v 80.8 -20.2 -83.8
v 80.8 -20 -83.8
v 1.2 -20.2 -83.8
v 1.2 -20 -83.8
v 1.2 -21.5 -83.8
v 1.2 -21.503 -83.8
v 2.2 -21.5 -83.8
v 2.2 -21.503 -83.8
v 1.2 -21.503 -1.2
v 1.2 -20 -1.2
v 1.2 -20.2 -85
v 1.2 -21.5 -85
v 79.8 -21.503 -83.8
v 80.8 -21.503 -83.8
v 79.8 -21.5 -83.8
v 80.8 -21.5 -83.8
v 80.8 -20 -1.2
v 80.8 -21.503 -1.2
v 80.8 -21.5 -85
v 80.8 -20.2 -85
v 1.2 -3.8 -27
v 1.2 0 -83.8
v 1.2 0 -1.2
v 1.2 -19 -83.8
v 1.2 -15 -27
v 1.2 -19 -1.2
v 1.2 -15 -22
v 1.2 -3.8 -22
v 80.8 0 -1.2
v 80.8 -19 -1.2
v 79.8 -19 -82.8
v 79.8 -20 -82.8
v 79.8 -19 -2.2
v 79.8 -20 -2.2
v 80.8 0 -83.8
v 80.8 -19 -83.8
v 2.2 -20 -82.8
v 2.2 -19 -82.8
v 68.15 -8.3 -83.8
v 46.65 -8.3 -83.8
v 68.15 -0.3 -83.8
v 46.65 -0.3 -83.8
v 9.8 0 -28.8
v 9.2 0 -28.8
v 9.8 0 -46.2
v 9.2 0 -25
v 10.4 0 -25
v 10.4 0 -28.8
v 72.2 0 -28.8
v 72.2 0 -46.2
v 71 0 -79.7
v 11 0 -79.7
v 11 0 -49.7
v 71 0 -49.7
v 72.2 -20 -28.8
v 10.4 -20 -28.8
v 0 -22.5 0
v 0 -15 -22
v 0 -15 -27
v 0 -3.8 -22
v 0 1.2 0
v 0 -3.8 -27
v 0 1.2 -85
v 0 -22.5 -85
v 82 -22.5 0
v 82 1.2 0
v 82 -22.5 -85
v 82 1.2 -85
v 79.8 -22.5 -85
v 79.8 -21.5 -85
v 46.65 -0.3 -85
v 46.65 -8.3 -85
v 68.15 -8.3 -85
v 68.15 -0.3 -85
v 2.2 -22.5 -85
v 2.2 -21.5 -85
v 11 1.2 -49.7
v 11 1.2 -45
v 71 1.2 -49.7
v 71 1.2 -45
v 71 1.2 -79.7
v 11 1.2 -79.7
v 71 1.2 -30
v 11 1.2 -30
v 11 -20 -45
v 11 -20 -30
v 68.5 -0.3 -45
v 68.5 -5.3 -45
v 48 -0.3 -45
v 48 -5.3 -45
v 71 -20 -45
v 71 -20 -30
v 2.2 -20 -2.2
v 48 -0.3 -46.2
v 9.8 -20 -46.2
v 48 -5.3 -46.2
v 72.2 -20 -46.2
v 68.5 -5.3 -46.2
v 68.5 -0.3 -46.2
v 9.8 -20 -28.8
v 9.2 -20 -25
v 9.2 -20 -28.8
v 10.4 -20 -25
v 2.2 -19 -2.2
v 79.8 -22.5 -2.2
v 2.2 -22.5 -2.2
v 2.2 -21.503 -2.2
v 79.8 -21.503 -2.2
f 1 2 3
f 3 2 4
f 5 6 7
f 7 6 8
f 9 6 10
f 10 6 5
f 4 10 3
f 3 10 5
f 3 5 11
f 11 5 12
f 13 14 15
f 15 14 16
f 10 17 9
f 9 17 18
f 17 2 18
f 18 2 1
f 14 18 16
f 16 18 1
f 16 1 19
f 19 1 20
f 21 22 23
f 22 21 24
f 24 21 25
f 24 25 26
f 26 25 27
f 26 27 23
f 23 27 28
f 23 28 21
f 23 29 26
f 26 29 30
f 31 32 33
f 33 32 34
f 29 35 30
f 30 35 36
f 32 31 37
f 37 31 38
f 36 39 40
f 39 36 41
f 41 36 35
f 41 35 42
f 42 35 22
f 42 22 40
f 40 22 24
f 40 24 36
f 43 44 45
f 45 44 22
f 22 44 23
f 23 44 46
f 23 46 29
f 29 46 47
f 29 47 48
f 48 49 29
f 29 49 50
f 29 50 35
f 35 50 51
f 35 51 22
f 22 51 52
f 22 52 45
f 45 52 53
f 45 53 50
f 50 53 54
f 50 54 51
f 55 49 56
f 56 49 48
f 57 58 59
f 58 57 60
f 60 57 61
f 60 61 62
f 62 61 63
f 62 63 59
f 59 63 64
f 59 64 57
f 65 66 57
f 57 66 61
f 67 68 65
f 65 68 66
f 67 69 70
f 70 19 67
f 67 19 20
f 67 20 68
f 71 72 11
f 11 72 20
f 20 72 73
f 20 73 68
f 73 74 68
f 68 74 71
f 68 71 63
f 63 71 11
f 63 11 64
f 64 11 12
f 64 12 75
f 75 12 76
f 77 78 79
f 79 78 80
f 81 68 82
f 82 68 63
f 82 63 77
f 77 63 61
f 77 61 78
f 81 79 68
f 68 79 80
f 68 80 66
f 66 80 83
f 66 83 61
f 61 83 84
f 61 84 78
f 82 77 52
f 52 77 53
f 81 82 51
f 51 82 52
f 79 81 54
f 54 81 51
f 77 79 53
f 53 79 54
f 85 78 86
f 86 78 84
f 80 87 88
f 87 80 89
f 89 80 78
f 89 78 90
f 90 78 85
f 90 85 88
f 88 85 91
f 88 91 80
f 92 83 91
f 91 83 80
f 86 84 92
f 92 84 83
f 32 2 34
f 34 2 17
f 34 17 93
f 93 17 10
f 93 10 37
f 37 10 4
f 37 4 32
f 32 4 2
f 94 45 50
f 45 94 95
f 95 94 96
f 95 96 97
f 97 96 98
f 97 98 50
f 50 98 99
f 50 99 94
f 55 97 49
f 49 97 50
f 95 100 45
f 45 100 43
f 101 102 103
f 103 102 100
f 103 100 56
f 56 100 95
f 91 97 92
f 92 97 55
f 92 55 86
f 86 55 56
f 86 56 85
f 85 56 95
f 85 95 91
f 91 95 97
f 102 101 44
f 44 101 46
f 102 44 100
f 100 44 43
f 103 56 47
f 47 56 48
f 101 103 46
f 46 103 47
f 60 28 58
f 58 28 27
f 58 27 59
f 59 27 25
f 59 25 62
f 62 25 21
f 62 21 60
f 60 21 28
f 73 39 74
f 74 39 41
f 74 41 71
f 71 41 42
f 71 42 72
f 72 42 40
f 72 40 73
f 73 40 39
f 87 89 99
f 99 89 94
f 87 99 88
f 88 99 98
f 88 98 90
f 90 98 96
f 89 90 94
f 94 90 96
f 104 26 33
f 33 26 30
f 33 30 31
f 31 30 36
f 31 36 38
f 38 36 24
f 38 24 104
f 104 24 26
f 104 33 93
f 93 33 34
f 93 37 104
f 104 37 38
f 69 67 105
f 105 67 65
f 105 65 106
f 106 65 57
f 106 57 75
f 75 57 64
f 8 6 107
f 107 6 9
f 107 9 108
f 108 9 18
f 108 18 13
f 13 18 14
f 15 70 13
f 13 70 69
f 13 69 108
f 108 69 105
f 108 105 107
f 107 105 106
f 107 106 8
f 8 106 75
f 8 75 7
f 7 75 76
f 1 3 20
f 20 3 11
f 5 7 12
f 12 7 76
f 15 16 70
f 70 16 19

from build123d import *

# Parameters (mm, degrees)
SKETCH1_W            = 82
SKETCH1_H            = 85
BOSS_EXTRUDE1_DEPTH  = 1.2
SKETCH2_W            = 60
SKETCH2_H            = 30
CUT_EXTRUDE1_DEPTH   = 2
SKETCH3_W            = 60
SKETCH3_H            = 15
CUT_EXTRUDE2_DEPTH   = 2
SKETCH4_W            = 82
SKETCH4_H            = 85
SKETCH4_W_2          = 79.6
SKETCH4_H_2          = 82.6
BOSS_EXTRUDE2_DEPTH  = 20
SKETCH5_W            = 62.4
SKETCH5_H            = 17.4
SKETCH5_W_2          = 60
SKETCH5_H_2          = 15
BOSS_EXTRUDE4_DEPTH  = 20
SKETCH10_W           = 1.2
SKETCH10_H           = 3.8
BOSS_EXTRUDE5_DEPTH  = 20
SKETCH11_W           = 5
SKETCH11_H           = 11.2
CUT_EXTRUDE3_DEPTH   = 1.5
SKETCH12_W           = 21.5
SKETCH12_H           = 8
CUT_EXTRUDE4_DEPTH   = 1.5
SKETCH15_W           = 20.5
SKETCH15_H           = 5
CUT_EXTRUDE5_DEPTH   = 1.5
SKETCH16_W           = 79.6
SKETCH16_H           = 1
BOSS_EXTRUDE6_DEPTH  = 1
SKETCH17_W           = 81.6
SKETCH17_H           = 1
BOSS_EXTRUDE7_DEPTH  = 1
SKETCH18_W           = 78.6
SKETCH18_H           = 1
BOSS_EXTRUDE8_DEPTH  = 1
SKETCH19_W           = 80.6
SKETCH19_H           = 1
BOSS_EXTRUDE9_DEPTH  = 1
SKETCH20_W           = 82
SKETCH20_H           = 85
SKETCH20_W_2         = 79.6
SKETCH20_H_2         = 82.6
BOSS_EXTRUDE10_DEPTH = 2.5
SKETCH23_W           = 82.6
SKETCH23_H           = 0.996744569
BOSS_EXTRUDE11_DEPTH = 1
SKETCH25_W           = 78.6
SKETCH25_H           = 0.996744569
BOSS_EXTRUDE13_DEPTH = 1
SKETCH27_W           = 81.6
SKETCH27_H           = 0.996744569
BOSS_EXTRUDE14_DEPTH = 1
CUT_EXTRUDE7_DEPTH   = 1.2


with BuildPart() as part:
    # Sketch1 → Boss-Extrude1 (new body)
    with BuildSketch(Plane(origin=(0, 0, 0), x_dir=(1, 0, 0), z_dir=(0, 1, 0))):
        with Locations((41, 42.5)):
            Rectangle(SKETCH1_W, SKETCH1_H)
    extrude(amount=BOSS_EXTRUDE1_DEPTH)

    # Sketch2 → Cut-Extrude1 (cut)
    with BuildSketch(Plane(origin=(0, 1.2, 0), x_dir=(1, 0, 0), z_dir=(0, 1, 0))):
        with Locations((41, 64.7)):
            Rectangle(SKETCH2_W, SKETCH2_H)
    extrude(amount=-CUT_EXTRUDE1_DEPTH, mode=Mode.SUBTRACT)

    # Sketch3 → Cut-Extrude2 (cut)
    with BuildSketch(Plane(origin=(0, 1.2, 0), x_dir=(1, 0, 0), z_dir=(0, 1, 0))):
        with Locations((41, 37.5)):
            Rectangle(SKETCH3_W, SKETCH3_H)
    extrude(amount=-CUT_EXTRUDE2_DEPTH, mode=Mode.SUBTRACT)

    # Sketch4 → Boss-Extrude2 (add)
    with BuildSketch(Plane.XZ):
        with Locations((41, -42.5)):
            Rectangle(SKETCH4_W, SKETCH4_H)
        with Locations((41, -42.5)):
            Rectangle(SKETCH4_W_2, SKETCH4_H_2, mode=Mode.SUBTRACT)
    extrude(amount=BOSS_EXTRUDE2_DEPTH)

    # Sketch5 → Boss-Extrude4 (add)
    with BuildSketch(Plane.XZ):
        with Locations((41, -37.5)):
            Rectangle(SKETCH5_W, SKETCH5_H)
        with Locations((41, -37.5)):
            Rectangle(SKETCH5_W_2, SKETCH5_H_2, mode=Mode.SUBTRACT)
    extrude(amount=BOSS_EXTRUDE4_DEPTH)

    # Sketch10 → Boss-Extrude5 (add)
    with BuildSketch(Plane.XZ):
        with Locations((9.8, -26.9)):
            Rectangle(SKETCH10_W, SKETCH10_H)
    extrude(amount=BOSS_EXTRUDE5_DEPTH)

    # Sketch11 → Cut-Extrude3 (cut)
    with BuildSketch(Plane.ZY):
        with Locations((-24.5, -9.4)):
            Rectangle(SKETCH11_W, SKETCH11_H)
    extrude(amount=-CUT_EXTRUDE3_DEPTH, mode=Mode.SUBTRACT)

    # Sketch12 → Cut-Extrude4 (cut)
    with BuildSketch(Plane(origin=(0, 0, -85), x_dir=(-1, 0, 0), z_dir=(0, 0, -1))):
        with Locations((-57.4, -4.3)):
            Rectangle(SKETCH12_W, SKETCH12_H)
    extrude(amount=-CUT_EXTRUDE4_DEPTH, mode=Mode.SUBTRACT)

    # Sketch15 → Cut-Extrude5 (cut)
    with BuildSketch(Plane.XY.offset(-45)):
        with Locations((58.25, -2.8)):
            Rectangle(SKETCH15_W, SKETCH15_H)
    extrude(amount=-CUT_EXTRUDE5_DEPTH, mode=Mode.SUBTRACT)

    # Sketch16 → Boss-Extrude6 (add)
    with BuildSketch(Plane.XY.offset(-83.8)):
        with Locations((41, -19.5)):
            Rectangle(SKETCH16_W, SKETCH16_H)
    extrude(amount=BOSS_EXTRUDE6_DEPTH)

    # Sketch17 → Boss-Extrude7 (add)
    with BuildSketch(Plane.ZY.offset(-80.8)):
        with Locations((-42, -19.5)):
            Rectangle(SKETCH17_W, SKETCH17_H)
    extrude(amount=BOSS_EXTRUDE7_DEPTH)

    # Sketch18 → Boss-Extrude8 (add)
    with BuildSketch(Plane(origin=(0, 0, -1.2), x_dir=(-1, 0, 0), z_dir=(0, 0, -1))):
        with Locations((-40.5, -19.5)):
            Rectangle(SKETCH18_W, SKETCH18_H)
    extrude(amount=BOSS_EXTRUDE8_DEPTH)

    # Sketch19 → Boss-Extrude9 (add)
    with BuildSketch(Plane(origin=(1.2, 0, 0), x_dir=(0, 0, -1), z_dir=(1, 0, 0))):
        with Locations((42.5, -19.5)):
            Rectangle(SKETCH19_W, SKETCH19_H)
    extrude(amount=BOSS_EXTRUDE9_DEPTH)

    # Sketch20 → Boss-Extrude10 (add)
    with BuildSketch(Plane.XZ.offset(20)):
        with Locations((41, -42.5)):
            Rectangle(SKETCH20_W, SKETCH20_H)
        with Locations((41, -42.5)):
            Rectangle(SKETCH20_W_2, SKETCH20_H_2, mode=Mode.SUBTRACT)
    extrude(amount=BOSS_EXTRUDE10_DEPTH)

    # Sketch23 → Boss-Extrude11 (add)
    with BuildSketch(Plane.ZY.offset(-80.8)):
        with Locations((-42.5, -22.001627715)):
            Rectangle(SKETCH23_W, SKETCH23_H)
    extrude(amount=BOSS_EXTRUDE11_DEPTH)

    # Sketch25 → Boss-Extrude13 (add)
    with BuildSketch(Plane(origin=(0, 0, -1.2), x_dir=(-1, 0, 0), z_dir=(0, 0, -1))):
        with Locations((-40.5, -22.001627715)):
            Rectangle(SKETCH25_W, SKETCH25_H)
    extrude(amount=BOSS_EXTRUDE13_DEPTH)

    # Sketch27 → Boss-Extrude14 (add)
    with BuildSketch(Plane(origin=(1.2, 0, 0), x_dir=(0, 0, -1), z_dir=(1, 0, 0))):
        with Locations((43, -22.001627715)):
            Rectangle(SKETCH27_W, SKETCH27_H)
    extrude(amount=BOSS_EXTRUDE14_DEPTH)

    # Sketch28 → Cut-Extrude7 (cut)
    with BuildSketch(Plane(origin=(0, 0, -85), x_dir=(-1, 0, 0), z_dir=(0, 0, -1))):
        Polygon((-79.8, -22.5), (-79.8, -21.5), (-80.8, -21.5), (-80.8, -20.2), (-1.2, -20.2), (-1.2, -21.5), (-2.2, -21.5), (-2.2, -22.5), align=None)
    extrude(amount=-CUT_EXTRUDE7_DEPTH, mode=Mode.SUBTRACT)


solid = part.part
